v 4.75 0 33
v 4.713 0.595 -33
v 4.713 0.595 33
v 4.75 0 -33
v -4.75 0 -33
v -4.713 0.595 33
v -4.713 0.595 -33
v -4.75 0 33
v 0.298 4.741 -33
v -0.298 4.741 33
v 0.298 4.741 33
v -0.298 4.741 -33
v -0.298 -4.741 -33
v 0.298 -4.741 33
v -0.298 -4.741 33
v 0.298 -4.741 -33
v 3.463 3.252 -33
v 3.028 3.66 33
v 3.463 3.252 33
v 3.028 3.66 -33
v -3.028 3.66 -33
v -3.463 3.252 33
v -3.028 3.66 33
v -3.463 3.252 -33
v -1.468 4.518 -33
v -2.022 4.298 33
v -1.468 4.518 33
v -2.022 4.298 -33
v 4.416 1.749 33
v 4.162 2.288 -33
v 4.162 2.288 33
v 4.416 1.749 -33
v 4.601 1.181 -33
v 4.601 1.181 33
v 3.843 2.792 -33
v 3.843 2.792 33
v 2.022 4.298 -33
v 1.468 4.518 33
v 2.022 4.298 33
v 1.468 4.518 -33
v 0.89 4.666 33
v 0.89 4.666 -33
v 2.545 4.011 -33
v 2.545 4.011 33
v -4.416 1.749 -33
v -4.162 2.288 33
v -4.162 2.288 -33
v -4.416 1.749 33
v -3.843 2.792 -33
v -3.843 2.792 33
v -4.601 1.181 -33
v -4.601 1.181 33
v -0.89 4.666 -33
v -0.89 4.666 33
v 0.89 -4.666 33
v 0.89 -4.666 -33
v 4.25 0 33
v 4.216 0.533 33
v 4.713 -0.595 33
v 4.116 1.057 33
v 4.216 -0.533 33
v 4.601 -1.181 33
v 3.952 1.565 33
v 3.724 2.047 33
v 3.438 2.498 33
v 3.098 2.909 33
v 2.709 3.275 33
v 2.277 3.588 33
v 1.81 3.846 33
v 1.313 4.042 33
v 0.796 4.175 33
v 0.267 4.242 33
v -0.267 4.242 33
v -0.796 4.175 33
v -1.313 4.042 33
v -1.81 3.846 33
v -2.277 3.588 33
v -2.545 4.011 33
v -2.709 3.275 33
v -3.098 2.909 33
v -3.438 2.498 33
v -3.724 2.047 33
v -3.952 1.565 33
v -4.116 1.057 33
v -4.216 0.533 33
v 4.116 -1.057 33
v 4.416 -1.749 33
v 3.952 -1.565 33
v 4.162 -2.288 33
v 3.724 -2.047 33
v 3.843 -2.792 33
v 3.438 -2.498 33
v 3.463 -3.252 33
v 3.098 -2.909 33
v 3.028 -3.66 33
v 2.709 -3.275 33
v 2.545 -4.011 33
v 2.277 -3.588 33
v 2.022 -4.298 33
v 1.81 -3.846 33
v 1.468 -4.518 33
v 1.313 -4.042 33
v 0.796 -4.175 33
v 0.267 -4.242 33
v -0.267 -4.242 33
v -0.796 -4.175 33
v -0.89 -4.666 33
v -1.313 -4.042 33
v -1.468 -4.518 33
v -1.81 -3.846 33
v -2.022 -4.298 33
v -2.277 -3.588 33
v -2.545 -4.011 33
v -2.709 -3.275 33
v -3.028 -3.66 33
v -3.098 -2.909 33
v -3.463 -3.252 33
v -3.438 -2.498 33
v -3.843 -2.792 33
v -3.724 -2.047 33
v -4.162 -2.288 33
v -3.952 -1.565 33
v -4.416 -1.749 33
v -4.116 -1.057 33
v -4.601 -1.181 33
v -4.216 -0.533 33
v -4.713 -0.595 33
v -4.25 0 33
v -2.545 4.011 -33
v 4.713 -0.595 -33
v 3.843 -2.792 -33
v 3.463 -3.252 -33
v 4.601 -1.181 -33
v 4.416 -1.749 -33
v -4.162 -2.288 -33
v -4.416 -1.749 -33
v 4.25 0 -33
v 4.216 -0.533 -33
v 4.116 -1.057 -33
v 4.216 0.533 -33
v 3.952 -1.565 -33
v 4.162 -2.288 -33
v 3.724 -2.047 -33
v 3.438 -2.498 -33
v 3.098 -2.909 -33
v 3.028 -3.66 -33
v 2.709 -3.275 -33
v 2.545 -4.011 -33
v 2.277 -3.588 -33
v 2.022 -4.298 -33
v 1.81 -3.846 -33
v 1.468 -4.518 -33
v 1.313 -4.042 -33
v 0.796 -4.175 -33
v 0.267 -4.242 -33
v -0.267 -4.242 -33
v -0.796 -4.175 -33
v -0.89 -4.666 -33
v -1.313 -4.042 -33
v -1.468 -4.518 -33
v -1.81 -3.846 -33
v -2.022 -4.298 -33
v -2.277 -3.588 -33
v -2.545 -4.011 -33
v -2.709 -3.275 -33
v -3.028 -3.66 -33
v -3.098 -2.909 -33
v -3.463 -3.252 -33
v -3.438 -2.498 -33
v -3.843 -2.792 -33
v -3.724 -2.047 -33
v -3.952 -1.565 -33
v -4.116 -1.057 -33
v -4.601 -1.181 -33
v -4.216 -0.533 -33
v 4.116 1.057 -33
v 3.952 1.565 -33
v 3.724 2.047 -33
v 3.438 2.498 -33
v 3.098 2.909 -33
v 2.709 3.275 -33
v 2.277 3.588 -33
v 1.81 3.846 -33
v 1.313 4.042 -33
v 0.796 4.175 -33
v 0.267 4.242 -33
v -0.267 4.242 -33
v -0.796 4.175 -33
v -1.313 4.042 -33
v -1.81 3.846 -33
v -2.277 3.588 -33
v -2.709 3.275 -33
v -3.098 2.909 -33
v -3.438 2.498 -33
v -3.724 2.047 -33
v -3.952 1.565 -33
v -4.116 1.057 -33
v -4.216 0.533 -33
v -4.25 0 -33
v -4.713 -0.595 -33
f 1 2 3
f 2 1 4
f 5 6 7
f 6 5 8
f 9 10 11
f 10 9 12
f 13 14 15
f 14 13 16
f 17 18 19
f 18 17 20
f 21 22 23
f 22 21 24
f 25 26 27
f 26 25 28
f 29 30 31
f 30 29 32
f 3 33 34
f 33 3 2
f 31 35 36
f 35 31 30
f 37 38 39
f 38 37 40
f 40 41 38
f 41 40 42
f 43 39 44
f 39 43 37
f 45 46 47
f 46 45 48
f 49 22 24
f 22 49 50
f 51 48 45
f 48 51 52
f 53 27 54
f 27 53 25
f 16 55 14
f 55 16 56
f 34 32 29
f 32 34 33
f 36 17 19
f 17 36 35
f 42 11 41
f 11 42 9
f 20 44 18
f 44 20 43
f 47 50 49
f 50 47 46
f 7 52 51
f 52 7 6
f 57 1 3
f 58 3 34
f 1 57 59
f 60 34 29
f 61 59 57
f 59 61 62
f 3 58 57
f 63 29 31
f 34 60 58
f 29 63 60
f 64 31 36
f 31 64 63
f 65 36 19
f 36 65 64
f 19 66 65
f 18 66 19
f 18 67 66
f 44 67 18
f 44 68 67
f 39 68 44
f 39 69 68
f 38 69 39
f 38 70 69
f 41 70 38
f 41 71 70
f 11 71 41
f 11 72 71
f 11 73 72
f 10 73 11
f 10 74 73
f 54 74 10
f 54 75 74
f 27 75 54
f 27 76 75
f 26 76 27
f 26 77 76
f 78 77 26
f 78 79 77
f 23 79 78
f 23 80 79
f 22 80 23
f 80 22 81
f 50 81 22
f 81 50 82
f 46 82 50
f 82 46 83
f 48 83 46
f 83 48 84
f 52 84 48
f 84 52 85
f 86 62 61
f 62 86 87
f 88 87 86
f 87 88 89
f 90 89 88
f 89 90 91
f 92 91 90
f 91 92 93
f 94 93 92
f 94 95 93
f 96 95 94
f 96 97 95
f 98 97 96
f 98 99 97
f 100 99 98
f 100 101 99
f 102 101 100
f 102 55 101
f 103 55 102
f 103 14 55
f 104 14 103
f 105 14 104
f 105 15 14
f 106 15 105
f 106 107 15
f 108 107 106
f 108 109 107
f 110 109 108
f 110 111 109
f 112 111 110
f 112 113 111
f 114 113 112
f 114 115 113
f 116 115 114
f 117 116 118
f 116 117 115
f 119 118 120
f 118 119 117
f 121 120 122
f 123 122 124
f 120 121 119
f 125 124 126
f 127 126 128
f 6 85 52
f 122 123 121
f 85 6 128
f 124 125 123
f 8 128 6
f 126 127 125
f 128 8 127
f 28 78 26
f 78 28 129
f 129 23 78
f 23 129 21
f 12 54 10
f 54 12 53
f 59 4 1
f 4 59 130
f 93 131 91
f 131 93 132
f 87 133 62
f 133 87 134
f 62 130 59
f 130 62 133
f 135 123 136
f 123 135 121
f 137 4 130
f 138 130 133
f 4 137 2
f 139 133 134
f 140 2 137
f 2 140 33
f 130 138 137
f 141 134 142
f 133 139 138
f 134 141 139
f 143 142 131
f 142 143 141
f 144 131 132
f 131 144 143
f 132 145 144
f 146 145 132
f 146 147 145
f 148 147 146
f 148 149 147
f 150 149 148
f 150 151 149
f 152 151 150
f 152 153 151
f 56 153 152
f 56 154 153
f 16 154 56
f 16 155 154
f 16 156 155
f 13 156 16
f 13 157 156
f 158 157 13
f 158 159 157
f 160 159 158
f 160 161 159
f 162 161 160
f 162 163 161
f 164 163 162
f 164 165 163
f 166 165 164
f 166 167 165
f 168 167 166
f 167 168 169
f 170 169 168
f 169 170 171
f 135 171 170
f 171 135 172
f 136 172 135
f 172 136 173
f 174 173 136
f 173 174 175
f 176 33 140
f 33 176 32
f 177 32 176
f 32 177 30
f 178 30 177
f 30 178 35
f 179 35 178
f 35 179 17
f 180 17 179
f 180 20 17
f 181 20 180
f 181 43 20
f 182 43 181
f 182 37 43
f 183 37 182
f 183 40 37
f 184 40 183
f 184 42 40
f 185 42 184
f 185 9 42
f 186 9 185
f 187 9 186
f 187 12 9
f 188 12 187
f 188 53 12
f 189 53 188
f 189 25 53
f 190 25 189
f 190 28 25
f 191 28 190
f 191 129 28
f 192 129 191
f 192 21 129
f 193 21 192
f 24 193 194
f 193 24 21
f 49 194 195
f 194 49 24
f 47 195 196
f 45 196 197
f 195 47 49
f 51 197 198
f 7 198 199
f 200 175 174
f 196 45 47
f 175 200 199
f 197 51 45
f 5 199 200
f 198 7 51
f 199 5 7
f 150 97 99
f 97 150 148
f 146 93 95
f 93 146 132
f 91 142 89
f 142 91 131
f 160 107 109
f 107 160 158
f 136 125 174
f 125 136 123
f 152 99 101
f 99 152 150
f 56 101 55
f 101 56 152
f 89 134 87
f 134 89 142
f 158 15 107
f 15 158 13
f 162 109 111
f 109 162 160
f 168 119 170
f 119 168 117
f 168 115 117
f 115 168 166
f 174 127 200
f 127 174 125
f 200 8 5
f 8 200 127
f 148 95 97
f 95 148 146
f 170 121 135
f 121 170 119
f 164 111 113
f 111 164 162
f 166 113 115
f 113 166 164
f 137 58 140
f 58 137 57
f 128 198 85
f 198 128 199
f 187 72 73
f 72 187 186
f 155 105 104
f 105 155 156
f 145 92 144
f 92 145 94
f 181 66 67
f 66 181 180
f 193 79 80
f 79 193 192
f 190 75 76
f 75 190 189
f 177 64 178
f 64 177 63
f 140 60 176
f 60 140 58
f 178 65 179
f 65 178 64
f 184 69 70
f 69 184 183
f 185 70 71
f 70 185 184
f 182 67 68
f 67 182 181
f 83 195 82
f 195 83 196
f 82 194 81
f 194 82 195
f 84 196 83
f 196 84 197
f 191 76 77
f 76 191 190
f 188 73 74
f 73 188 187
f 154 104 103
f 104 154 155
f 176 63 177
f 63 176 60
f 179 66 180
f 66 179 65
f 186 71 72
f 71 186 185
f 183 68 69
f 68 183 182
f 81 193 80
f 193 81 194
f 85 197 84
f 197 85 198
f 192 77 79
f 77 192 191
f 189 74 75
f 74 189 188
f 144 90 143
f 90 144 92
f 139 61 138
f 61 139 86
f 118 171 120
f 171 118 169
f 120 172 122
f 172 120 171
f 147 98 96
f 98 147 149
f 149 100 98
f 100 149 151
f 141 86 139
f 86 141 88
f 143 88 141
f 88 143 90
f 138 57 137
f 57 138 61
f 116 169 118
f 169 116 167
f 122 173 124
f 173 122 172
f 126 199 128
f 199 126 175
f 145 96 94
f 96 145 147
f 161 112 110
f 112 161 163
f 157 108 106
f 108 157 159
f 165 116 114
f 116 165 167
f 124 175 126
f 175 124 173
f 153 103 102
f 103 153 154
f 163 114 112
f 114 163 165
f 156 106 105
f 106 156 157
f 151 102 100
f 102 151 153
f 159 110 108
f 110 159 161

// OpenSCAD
$fn = 50;


difference() {
	union() {
		translate(v = [0, 0, -33.0000000000]) {
			cylinder(h = 66, r = 4.7500000000);
		}
	}
	union() {
		translate(v = [0, 0, -100.0000000000]) {
			cylinder(h = 200, r = 4.2500000000);
		}
	}
}
